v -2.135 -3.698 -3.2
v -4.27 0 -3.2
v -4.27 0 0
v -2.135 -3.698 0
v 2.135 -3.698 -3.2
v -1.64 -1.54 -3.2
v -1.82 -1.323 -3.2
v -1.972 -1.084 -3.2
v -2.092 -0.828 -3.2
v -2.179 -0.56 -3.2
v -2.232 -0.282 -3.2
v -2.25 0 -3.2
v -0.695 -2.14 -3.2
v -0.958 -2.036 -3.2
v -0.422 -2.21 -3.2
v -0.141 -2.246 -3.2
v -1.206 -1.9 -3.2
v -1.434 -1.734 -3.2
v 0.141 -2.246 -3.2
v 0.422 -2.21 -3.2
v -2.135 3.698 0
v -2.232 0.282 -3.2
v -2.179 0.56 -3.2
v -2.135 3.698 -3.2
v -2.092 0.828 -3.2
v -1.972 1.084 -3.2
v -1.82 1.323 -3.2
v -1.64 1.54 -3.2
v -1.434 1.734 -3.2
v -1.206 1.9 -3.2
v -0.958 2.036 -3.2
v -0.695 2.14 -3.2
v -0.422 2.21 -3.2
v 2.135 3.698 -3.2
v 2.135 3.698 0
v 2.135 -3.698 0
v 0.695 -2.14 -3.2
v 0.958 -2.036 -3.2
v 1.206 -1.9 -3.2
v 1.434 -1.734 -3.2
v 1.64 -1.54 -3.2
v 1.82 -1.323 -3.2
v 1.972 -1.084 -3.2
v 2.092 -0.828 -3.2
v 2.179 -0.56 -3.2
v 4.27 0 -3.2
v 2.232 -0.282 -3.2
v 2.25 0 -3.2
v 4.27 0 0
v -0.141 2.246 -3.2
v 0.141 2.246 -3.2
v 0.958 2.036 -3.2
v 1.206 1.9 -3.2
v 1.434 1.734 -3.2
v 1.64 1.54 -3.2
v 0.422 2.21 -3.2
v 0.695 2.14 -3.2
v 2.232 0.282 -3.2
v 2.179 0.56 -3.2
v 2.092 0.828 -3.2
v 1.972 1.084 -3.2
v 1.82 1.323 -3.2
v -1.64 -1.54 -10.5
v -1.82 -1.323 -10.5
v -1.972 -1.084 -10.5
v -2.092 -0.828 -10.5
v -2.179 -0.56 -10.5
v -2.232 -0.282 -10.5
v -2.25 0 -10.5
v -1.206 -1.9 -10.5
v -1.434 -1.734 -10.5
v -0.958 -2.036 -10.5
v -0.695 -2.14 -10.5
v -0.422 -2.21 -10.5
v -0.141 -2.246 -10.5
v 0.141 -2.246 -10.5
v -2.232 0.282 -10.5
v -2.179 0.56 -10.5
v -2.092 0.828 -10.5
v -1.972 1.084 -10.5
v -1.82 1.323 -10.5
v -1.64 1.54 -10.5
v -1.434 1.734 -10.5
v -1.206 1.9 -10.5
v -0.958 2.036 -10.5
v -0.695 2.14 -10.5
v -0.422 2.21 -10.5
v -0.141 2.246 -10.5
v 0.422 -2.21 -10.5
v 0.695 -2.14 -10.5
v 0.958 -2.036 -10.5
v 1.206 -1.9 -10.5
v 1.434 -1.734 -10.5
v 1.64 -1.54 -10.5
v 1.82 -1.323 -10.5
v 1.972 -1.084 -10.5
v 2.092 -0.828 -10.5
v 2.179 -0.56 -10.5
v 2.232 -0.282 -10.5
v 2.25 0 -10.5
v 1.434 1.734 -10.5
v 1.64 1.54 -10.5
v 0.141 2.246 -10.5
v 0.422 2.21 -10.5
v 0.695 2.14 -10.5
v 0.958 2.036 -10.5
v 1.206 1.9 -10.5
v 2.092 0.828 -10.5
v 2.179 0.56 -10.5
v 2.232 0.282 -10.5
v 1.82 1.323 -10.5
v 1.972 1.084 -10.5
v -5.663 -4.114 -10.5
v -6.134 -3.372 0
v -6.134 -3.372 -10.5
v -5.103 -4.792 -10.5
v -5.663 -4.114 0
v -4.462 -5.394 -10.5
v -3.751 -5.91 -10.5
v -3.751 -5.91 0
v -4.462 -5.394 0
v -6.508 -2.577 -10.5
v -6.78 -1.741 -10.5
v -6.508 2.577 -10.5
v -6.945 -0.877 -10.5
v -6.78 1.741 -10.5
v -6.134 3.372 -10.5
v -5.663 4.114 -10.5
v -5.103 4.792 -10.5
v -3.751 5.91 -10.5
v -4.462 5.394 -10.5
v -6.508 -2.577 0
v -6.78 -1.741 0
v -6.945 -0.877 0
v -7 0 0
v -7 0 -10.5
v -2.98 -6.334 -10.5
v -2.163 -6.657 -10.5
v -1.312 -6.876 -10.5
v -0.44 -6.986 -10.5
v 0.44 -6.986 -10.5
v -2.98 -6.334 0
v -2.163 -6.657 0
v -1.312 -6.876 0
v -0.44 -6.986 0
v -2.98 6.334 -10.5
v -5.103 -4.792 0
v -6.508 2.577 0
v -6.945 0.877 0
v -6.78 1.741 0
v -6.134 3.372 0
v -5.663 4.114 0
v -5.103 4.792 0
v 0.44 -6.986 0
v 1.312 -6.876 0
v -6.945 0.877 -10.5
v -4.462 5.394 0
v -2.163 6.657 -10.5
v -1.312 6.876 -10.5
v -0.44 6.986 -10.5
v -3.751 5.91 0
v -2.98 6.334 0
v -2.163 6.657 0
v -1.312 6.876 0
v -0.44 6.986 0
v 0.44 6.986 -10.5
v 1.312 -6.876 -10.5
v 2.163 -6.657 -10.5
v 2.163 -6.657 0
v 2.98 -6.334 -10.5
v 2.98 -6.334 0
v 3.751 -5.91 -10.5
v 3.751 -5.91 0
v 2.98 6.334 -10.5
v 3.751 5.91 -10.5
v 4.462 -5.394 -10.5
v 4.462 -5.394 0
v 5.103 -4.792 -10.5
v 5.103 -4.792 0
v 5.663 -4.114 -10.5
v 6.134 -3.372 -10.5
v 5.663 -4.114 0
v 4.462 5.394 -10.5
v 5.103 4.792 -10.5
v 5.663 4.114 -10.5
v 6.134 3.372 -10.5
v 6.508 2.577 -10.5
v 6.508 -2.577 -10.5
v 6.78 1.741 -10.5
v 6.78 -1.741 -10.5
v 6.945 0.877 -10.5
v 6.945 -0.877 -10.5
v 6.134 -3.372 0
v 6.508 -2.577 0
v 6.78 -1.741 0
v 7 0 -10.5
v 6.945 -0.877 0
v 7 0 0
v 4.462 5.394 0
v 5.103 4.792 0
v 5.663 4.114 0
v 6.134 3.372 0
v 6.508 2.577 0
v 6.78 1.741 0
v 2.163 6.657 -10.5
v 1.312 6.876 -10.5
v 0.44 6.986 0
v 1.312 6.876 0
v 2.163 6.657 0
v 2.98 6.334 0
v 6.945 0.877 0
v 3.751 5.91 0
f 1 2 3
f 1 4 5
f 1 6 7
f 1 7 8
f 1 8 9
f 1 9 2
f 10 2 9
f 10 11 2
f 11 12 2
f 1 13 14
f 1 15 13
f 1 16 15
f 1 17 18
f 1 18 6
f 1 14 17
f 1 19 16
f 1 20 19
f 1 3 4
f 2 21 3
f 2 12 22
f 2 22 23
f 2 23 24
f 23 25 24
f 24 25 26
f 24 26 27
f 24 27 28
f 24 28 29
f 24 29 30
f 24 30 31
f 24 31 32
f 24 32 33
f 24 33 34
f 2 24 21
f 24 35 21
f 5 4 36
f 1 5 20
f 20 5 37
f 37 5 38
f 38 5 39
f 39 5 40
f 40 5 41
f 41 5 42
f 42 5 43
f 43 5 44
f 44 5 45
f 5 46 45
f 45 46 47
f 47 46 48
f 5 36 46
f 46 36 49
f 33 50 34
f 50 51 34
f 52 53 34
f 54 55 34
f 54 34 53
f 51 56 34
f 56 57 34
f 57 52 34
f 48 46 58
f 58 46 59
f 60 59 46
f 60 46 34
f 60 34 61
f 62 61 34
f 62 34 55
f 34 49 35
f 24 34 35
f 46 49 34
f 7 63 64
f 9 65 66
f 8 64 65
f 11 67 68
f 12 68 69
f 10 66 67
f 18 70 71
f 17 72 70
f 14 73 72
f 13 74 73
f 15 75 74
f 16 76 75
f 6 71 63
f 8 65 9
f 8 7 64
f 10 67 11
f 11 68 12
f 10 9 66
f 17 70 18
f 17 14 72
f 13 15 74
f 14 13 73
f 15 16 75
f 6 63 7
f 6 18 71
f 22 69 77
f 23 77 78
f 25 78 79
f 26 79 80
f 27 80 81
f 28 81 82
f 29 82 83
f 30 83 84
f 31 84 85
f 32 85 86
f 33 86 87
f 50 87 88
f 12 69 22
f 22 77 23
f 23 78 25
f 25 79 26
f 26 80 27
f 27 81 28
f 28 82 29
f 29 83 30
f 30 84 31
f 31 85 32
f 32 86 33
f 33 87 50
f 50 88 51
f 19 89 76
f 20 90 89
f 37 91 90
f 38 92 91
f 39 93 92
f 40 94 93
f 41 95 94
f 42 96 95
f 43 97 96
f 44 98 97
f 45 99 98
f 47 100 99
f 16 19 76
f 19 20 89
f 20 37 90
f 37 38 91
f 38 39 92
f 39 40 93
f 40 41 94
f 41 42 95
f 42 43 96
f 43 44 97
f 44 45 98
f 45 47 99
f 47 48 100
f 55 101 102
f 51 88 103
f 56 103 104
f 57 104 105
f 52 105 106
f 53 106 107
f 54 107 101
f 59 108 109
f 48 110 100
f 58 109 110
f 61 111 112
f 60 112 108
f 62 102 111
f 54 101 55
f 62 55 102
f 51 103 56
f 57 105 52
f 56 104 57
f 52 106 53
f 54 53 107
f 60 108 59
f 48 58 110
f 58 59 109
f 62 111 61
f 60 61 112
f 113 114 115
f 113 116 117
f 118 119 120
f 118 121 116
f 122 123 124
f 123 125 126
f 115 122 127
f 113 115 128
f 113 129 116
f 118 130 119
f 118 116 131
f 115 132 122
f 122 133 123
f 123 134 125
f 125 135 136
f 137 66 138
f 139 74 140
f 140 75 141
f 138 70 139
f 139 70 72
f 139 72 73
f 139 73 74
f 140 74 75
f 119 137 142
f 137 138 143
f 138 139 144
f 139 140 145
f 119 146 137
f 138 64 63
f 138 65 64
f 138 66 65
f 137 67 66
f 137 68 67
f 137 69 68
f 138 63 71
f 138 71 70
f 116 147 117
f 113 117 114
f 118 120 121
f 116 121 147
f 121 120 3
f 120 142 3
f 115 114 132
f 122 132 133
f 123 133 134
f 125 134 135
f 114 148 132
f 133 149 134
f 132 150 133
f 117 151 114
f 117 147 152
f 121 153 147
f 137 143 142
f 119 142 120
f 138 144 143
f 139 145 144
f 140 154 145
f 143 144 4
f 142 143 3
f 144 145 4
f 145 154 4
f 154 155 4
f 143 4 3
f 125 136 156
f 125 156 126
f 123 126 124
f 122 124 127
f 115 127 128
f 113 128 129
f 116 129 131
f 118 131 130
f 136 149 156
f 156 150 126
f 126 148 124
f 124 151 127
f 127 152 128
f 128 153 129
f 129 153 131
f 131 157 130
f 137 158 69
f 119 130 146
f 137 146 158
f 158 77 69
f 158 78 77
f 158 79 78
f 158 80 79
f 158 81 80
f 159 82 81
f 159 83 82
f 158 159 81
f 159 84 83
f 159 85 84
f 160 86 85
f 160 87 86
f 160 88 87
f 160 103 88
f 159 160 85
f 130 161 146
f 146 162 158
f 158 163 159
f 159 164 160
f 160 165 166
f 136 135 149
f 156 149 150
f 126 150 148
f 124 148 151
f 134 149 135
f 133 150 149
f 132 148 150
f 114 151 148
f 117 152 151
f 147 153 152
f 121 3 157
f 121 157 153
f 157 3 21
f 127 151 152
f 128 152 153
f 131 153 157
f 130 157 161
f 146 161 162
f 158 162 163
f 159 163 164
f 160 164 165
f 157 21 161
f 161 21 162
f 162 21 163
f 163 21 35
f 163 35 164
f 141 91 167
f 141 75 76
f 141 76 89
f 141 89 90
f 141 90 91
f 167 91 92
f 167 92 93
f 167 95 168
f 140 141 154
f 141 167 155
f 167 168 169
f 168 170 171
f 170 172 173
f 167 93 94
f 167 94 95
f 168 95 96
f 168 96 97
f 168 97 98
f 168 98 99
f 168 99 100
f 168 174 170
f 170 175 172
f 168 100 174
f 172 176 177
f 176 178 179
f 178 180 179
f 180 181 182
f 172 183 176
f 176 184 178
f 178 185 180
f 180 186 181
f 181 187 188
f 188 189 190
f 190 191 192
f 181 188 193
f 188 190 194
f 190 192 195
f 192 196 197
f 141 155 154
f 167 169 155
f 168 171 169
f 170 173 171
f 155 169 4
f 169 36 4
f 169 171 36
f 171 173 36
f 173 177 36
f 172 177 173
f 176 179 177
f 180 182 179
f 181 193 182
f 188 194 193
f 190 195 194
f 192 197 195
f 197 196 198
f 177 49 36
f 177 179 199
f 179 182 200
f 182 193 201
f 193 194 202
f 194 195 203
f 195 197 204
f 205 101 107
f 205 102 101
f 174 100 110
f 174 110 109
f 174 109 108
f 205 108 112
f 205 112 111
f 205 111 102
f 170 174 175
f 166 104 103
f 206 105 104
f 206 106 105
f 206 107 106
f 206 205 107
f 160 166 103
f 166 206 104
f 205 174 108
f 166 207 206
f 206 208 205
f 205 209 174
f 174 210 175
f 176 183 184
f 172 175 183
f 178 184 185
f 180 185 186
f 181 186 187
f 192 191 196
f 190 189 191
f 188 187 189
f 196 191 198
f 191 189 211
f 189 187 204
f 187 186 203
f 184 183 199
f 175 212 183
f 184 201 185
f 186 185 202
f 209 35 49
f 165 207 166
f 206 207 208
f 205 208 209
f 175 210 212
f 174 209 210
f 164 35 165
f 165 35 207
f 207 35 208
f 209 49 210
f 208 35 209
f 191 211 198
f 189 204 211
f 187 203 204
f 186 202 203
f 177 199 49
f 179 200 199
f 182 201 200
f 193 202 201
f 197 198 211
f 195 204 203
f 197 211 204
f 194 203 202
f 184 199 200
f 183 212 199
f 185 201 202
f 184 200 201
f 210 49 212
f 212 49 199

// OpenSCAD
$fn = 50;

difference() {
	union() {
		translate(v = [0, 0, -10.5]) {
			cylinder(h = 10.5, r = 7.0);
		}
	}
	union() {
		translate(v = [0, 0, 0]) {
			rotate(a = [0, 0, 0]) {
				difference() {
					union() {
						translate(v = [0, 0, -3.2]) {
							linear_extrude(height = 3.2) {
								polygon(points = [[4.2698, 0.0], [2.1349000000000005, 3.697755269078796], [-2.134899999999999, 3.6977552690787965], [-4.2698, 5.228996902999369e-16], [-2.134900000000002, -3.6977552690787956], [2.1348999999999974, -3.697755269078798]]);
							}
						}
					}
					union();
				}
			}
		}
		#translate(v = [0, 0, -100.0]) {
			cylinder(h = 200, r = 2.25);
		}
	}
}
